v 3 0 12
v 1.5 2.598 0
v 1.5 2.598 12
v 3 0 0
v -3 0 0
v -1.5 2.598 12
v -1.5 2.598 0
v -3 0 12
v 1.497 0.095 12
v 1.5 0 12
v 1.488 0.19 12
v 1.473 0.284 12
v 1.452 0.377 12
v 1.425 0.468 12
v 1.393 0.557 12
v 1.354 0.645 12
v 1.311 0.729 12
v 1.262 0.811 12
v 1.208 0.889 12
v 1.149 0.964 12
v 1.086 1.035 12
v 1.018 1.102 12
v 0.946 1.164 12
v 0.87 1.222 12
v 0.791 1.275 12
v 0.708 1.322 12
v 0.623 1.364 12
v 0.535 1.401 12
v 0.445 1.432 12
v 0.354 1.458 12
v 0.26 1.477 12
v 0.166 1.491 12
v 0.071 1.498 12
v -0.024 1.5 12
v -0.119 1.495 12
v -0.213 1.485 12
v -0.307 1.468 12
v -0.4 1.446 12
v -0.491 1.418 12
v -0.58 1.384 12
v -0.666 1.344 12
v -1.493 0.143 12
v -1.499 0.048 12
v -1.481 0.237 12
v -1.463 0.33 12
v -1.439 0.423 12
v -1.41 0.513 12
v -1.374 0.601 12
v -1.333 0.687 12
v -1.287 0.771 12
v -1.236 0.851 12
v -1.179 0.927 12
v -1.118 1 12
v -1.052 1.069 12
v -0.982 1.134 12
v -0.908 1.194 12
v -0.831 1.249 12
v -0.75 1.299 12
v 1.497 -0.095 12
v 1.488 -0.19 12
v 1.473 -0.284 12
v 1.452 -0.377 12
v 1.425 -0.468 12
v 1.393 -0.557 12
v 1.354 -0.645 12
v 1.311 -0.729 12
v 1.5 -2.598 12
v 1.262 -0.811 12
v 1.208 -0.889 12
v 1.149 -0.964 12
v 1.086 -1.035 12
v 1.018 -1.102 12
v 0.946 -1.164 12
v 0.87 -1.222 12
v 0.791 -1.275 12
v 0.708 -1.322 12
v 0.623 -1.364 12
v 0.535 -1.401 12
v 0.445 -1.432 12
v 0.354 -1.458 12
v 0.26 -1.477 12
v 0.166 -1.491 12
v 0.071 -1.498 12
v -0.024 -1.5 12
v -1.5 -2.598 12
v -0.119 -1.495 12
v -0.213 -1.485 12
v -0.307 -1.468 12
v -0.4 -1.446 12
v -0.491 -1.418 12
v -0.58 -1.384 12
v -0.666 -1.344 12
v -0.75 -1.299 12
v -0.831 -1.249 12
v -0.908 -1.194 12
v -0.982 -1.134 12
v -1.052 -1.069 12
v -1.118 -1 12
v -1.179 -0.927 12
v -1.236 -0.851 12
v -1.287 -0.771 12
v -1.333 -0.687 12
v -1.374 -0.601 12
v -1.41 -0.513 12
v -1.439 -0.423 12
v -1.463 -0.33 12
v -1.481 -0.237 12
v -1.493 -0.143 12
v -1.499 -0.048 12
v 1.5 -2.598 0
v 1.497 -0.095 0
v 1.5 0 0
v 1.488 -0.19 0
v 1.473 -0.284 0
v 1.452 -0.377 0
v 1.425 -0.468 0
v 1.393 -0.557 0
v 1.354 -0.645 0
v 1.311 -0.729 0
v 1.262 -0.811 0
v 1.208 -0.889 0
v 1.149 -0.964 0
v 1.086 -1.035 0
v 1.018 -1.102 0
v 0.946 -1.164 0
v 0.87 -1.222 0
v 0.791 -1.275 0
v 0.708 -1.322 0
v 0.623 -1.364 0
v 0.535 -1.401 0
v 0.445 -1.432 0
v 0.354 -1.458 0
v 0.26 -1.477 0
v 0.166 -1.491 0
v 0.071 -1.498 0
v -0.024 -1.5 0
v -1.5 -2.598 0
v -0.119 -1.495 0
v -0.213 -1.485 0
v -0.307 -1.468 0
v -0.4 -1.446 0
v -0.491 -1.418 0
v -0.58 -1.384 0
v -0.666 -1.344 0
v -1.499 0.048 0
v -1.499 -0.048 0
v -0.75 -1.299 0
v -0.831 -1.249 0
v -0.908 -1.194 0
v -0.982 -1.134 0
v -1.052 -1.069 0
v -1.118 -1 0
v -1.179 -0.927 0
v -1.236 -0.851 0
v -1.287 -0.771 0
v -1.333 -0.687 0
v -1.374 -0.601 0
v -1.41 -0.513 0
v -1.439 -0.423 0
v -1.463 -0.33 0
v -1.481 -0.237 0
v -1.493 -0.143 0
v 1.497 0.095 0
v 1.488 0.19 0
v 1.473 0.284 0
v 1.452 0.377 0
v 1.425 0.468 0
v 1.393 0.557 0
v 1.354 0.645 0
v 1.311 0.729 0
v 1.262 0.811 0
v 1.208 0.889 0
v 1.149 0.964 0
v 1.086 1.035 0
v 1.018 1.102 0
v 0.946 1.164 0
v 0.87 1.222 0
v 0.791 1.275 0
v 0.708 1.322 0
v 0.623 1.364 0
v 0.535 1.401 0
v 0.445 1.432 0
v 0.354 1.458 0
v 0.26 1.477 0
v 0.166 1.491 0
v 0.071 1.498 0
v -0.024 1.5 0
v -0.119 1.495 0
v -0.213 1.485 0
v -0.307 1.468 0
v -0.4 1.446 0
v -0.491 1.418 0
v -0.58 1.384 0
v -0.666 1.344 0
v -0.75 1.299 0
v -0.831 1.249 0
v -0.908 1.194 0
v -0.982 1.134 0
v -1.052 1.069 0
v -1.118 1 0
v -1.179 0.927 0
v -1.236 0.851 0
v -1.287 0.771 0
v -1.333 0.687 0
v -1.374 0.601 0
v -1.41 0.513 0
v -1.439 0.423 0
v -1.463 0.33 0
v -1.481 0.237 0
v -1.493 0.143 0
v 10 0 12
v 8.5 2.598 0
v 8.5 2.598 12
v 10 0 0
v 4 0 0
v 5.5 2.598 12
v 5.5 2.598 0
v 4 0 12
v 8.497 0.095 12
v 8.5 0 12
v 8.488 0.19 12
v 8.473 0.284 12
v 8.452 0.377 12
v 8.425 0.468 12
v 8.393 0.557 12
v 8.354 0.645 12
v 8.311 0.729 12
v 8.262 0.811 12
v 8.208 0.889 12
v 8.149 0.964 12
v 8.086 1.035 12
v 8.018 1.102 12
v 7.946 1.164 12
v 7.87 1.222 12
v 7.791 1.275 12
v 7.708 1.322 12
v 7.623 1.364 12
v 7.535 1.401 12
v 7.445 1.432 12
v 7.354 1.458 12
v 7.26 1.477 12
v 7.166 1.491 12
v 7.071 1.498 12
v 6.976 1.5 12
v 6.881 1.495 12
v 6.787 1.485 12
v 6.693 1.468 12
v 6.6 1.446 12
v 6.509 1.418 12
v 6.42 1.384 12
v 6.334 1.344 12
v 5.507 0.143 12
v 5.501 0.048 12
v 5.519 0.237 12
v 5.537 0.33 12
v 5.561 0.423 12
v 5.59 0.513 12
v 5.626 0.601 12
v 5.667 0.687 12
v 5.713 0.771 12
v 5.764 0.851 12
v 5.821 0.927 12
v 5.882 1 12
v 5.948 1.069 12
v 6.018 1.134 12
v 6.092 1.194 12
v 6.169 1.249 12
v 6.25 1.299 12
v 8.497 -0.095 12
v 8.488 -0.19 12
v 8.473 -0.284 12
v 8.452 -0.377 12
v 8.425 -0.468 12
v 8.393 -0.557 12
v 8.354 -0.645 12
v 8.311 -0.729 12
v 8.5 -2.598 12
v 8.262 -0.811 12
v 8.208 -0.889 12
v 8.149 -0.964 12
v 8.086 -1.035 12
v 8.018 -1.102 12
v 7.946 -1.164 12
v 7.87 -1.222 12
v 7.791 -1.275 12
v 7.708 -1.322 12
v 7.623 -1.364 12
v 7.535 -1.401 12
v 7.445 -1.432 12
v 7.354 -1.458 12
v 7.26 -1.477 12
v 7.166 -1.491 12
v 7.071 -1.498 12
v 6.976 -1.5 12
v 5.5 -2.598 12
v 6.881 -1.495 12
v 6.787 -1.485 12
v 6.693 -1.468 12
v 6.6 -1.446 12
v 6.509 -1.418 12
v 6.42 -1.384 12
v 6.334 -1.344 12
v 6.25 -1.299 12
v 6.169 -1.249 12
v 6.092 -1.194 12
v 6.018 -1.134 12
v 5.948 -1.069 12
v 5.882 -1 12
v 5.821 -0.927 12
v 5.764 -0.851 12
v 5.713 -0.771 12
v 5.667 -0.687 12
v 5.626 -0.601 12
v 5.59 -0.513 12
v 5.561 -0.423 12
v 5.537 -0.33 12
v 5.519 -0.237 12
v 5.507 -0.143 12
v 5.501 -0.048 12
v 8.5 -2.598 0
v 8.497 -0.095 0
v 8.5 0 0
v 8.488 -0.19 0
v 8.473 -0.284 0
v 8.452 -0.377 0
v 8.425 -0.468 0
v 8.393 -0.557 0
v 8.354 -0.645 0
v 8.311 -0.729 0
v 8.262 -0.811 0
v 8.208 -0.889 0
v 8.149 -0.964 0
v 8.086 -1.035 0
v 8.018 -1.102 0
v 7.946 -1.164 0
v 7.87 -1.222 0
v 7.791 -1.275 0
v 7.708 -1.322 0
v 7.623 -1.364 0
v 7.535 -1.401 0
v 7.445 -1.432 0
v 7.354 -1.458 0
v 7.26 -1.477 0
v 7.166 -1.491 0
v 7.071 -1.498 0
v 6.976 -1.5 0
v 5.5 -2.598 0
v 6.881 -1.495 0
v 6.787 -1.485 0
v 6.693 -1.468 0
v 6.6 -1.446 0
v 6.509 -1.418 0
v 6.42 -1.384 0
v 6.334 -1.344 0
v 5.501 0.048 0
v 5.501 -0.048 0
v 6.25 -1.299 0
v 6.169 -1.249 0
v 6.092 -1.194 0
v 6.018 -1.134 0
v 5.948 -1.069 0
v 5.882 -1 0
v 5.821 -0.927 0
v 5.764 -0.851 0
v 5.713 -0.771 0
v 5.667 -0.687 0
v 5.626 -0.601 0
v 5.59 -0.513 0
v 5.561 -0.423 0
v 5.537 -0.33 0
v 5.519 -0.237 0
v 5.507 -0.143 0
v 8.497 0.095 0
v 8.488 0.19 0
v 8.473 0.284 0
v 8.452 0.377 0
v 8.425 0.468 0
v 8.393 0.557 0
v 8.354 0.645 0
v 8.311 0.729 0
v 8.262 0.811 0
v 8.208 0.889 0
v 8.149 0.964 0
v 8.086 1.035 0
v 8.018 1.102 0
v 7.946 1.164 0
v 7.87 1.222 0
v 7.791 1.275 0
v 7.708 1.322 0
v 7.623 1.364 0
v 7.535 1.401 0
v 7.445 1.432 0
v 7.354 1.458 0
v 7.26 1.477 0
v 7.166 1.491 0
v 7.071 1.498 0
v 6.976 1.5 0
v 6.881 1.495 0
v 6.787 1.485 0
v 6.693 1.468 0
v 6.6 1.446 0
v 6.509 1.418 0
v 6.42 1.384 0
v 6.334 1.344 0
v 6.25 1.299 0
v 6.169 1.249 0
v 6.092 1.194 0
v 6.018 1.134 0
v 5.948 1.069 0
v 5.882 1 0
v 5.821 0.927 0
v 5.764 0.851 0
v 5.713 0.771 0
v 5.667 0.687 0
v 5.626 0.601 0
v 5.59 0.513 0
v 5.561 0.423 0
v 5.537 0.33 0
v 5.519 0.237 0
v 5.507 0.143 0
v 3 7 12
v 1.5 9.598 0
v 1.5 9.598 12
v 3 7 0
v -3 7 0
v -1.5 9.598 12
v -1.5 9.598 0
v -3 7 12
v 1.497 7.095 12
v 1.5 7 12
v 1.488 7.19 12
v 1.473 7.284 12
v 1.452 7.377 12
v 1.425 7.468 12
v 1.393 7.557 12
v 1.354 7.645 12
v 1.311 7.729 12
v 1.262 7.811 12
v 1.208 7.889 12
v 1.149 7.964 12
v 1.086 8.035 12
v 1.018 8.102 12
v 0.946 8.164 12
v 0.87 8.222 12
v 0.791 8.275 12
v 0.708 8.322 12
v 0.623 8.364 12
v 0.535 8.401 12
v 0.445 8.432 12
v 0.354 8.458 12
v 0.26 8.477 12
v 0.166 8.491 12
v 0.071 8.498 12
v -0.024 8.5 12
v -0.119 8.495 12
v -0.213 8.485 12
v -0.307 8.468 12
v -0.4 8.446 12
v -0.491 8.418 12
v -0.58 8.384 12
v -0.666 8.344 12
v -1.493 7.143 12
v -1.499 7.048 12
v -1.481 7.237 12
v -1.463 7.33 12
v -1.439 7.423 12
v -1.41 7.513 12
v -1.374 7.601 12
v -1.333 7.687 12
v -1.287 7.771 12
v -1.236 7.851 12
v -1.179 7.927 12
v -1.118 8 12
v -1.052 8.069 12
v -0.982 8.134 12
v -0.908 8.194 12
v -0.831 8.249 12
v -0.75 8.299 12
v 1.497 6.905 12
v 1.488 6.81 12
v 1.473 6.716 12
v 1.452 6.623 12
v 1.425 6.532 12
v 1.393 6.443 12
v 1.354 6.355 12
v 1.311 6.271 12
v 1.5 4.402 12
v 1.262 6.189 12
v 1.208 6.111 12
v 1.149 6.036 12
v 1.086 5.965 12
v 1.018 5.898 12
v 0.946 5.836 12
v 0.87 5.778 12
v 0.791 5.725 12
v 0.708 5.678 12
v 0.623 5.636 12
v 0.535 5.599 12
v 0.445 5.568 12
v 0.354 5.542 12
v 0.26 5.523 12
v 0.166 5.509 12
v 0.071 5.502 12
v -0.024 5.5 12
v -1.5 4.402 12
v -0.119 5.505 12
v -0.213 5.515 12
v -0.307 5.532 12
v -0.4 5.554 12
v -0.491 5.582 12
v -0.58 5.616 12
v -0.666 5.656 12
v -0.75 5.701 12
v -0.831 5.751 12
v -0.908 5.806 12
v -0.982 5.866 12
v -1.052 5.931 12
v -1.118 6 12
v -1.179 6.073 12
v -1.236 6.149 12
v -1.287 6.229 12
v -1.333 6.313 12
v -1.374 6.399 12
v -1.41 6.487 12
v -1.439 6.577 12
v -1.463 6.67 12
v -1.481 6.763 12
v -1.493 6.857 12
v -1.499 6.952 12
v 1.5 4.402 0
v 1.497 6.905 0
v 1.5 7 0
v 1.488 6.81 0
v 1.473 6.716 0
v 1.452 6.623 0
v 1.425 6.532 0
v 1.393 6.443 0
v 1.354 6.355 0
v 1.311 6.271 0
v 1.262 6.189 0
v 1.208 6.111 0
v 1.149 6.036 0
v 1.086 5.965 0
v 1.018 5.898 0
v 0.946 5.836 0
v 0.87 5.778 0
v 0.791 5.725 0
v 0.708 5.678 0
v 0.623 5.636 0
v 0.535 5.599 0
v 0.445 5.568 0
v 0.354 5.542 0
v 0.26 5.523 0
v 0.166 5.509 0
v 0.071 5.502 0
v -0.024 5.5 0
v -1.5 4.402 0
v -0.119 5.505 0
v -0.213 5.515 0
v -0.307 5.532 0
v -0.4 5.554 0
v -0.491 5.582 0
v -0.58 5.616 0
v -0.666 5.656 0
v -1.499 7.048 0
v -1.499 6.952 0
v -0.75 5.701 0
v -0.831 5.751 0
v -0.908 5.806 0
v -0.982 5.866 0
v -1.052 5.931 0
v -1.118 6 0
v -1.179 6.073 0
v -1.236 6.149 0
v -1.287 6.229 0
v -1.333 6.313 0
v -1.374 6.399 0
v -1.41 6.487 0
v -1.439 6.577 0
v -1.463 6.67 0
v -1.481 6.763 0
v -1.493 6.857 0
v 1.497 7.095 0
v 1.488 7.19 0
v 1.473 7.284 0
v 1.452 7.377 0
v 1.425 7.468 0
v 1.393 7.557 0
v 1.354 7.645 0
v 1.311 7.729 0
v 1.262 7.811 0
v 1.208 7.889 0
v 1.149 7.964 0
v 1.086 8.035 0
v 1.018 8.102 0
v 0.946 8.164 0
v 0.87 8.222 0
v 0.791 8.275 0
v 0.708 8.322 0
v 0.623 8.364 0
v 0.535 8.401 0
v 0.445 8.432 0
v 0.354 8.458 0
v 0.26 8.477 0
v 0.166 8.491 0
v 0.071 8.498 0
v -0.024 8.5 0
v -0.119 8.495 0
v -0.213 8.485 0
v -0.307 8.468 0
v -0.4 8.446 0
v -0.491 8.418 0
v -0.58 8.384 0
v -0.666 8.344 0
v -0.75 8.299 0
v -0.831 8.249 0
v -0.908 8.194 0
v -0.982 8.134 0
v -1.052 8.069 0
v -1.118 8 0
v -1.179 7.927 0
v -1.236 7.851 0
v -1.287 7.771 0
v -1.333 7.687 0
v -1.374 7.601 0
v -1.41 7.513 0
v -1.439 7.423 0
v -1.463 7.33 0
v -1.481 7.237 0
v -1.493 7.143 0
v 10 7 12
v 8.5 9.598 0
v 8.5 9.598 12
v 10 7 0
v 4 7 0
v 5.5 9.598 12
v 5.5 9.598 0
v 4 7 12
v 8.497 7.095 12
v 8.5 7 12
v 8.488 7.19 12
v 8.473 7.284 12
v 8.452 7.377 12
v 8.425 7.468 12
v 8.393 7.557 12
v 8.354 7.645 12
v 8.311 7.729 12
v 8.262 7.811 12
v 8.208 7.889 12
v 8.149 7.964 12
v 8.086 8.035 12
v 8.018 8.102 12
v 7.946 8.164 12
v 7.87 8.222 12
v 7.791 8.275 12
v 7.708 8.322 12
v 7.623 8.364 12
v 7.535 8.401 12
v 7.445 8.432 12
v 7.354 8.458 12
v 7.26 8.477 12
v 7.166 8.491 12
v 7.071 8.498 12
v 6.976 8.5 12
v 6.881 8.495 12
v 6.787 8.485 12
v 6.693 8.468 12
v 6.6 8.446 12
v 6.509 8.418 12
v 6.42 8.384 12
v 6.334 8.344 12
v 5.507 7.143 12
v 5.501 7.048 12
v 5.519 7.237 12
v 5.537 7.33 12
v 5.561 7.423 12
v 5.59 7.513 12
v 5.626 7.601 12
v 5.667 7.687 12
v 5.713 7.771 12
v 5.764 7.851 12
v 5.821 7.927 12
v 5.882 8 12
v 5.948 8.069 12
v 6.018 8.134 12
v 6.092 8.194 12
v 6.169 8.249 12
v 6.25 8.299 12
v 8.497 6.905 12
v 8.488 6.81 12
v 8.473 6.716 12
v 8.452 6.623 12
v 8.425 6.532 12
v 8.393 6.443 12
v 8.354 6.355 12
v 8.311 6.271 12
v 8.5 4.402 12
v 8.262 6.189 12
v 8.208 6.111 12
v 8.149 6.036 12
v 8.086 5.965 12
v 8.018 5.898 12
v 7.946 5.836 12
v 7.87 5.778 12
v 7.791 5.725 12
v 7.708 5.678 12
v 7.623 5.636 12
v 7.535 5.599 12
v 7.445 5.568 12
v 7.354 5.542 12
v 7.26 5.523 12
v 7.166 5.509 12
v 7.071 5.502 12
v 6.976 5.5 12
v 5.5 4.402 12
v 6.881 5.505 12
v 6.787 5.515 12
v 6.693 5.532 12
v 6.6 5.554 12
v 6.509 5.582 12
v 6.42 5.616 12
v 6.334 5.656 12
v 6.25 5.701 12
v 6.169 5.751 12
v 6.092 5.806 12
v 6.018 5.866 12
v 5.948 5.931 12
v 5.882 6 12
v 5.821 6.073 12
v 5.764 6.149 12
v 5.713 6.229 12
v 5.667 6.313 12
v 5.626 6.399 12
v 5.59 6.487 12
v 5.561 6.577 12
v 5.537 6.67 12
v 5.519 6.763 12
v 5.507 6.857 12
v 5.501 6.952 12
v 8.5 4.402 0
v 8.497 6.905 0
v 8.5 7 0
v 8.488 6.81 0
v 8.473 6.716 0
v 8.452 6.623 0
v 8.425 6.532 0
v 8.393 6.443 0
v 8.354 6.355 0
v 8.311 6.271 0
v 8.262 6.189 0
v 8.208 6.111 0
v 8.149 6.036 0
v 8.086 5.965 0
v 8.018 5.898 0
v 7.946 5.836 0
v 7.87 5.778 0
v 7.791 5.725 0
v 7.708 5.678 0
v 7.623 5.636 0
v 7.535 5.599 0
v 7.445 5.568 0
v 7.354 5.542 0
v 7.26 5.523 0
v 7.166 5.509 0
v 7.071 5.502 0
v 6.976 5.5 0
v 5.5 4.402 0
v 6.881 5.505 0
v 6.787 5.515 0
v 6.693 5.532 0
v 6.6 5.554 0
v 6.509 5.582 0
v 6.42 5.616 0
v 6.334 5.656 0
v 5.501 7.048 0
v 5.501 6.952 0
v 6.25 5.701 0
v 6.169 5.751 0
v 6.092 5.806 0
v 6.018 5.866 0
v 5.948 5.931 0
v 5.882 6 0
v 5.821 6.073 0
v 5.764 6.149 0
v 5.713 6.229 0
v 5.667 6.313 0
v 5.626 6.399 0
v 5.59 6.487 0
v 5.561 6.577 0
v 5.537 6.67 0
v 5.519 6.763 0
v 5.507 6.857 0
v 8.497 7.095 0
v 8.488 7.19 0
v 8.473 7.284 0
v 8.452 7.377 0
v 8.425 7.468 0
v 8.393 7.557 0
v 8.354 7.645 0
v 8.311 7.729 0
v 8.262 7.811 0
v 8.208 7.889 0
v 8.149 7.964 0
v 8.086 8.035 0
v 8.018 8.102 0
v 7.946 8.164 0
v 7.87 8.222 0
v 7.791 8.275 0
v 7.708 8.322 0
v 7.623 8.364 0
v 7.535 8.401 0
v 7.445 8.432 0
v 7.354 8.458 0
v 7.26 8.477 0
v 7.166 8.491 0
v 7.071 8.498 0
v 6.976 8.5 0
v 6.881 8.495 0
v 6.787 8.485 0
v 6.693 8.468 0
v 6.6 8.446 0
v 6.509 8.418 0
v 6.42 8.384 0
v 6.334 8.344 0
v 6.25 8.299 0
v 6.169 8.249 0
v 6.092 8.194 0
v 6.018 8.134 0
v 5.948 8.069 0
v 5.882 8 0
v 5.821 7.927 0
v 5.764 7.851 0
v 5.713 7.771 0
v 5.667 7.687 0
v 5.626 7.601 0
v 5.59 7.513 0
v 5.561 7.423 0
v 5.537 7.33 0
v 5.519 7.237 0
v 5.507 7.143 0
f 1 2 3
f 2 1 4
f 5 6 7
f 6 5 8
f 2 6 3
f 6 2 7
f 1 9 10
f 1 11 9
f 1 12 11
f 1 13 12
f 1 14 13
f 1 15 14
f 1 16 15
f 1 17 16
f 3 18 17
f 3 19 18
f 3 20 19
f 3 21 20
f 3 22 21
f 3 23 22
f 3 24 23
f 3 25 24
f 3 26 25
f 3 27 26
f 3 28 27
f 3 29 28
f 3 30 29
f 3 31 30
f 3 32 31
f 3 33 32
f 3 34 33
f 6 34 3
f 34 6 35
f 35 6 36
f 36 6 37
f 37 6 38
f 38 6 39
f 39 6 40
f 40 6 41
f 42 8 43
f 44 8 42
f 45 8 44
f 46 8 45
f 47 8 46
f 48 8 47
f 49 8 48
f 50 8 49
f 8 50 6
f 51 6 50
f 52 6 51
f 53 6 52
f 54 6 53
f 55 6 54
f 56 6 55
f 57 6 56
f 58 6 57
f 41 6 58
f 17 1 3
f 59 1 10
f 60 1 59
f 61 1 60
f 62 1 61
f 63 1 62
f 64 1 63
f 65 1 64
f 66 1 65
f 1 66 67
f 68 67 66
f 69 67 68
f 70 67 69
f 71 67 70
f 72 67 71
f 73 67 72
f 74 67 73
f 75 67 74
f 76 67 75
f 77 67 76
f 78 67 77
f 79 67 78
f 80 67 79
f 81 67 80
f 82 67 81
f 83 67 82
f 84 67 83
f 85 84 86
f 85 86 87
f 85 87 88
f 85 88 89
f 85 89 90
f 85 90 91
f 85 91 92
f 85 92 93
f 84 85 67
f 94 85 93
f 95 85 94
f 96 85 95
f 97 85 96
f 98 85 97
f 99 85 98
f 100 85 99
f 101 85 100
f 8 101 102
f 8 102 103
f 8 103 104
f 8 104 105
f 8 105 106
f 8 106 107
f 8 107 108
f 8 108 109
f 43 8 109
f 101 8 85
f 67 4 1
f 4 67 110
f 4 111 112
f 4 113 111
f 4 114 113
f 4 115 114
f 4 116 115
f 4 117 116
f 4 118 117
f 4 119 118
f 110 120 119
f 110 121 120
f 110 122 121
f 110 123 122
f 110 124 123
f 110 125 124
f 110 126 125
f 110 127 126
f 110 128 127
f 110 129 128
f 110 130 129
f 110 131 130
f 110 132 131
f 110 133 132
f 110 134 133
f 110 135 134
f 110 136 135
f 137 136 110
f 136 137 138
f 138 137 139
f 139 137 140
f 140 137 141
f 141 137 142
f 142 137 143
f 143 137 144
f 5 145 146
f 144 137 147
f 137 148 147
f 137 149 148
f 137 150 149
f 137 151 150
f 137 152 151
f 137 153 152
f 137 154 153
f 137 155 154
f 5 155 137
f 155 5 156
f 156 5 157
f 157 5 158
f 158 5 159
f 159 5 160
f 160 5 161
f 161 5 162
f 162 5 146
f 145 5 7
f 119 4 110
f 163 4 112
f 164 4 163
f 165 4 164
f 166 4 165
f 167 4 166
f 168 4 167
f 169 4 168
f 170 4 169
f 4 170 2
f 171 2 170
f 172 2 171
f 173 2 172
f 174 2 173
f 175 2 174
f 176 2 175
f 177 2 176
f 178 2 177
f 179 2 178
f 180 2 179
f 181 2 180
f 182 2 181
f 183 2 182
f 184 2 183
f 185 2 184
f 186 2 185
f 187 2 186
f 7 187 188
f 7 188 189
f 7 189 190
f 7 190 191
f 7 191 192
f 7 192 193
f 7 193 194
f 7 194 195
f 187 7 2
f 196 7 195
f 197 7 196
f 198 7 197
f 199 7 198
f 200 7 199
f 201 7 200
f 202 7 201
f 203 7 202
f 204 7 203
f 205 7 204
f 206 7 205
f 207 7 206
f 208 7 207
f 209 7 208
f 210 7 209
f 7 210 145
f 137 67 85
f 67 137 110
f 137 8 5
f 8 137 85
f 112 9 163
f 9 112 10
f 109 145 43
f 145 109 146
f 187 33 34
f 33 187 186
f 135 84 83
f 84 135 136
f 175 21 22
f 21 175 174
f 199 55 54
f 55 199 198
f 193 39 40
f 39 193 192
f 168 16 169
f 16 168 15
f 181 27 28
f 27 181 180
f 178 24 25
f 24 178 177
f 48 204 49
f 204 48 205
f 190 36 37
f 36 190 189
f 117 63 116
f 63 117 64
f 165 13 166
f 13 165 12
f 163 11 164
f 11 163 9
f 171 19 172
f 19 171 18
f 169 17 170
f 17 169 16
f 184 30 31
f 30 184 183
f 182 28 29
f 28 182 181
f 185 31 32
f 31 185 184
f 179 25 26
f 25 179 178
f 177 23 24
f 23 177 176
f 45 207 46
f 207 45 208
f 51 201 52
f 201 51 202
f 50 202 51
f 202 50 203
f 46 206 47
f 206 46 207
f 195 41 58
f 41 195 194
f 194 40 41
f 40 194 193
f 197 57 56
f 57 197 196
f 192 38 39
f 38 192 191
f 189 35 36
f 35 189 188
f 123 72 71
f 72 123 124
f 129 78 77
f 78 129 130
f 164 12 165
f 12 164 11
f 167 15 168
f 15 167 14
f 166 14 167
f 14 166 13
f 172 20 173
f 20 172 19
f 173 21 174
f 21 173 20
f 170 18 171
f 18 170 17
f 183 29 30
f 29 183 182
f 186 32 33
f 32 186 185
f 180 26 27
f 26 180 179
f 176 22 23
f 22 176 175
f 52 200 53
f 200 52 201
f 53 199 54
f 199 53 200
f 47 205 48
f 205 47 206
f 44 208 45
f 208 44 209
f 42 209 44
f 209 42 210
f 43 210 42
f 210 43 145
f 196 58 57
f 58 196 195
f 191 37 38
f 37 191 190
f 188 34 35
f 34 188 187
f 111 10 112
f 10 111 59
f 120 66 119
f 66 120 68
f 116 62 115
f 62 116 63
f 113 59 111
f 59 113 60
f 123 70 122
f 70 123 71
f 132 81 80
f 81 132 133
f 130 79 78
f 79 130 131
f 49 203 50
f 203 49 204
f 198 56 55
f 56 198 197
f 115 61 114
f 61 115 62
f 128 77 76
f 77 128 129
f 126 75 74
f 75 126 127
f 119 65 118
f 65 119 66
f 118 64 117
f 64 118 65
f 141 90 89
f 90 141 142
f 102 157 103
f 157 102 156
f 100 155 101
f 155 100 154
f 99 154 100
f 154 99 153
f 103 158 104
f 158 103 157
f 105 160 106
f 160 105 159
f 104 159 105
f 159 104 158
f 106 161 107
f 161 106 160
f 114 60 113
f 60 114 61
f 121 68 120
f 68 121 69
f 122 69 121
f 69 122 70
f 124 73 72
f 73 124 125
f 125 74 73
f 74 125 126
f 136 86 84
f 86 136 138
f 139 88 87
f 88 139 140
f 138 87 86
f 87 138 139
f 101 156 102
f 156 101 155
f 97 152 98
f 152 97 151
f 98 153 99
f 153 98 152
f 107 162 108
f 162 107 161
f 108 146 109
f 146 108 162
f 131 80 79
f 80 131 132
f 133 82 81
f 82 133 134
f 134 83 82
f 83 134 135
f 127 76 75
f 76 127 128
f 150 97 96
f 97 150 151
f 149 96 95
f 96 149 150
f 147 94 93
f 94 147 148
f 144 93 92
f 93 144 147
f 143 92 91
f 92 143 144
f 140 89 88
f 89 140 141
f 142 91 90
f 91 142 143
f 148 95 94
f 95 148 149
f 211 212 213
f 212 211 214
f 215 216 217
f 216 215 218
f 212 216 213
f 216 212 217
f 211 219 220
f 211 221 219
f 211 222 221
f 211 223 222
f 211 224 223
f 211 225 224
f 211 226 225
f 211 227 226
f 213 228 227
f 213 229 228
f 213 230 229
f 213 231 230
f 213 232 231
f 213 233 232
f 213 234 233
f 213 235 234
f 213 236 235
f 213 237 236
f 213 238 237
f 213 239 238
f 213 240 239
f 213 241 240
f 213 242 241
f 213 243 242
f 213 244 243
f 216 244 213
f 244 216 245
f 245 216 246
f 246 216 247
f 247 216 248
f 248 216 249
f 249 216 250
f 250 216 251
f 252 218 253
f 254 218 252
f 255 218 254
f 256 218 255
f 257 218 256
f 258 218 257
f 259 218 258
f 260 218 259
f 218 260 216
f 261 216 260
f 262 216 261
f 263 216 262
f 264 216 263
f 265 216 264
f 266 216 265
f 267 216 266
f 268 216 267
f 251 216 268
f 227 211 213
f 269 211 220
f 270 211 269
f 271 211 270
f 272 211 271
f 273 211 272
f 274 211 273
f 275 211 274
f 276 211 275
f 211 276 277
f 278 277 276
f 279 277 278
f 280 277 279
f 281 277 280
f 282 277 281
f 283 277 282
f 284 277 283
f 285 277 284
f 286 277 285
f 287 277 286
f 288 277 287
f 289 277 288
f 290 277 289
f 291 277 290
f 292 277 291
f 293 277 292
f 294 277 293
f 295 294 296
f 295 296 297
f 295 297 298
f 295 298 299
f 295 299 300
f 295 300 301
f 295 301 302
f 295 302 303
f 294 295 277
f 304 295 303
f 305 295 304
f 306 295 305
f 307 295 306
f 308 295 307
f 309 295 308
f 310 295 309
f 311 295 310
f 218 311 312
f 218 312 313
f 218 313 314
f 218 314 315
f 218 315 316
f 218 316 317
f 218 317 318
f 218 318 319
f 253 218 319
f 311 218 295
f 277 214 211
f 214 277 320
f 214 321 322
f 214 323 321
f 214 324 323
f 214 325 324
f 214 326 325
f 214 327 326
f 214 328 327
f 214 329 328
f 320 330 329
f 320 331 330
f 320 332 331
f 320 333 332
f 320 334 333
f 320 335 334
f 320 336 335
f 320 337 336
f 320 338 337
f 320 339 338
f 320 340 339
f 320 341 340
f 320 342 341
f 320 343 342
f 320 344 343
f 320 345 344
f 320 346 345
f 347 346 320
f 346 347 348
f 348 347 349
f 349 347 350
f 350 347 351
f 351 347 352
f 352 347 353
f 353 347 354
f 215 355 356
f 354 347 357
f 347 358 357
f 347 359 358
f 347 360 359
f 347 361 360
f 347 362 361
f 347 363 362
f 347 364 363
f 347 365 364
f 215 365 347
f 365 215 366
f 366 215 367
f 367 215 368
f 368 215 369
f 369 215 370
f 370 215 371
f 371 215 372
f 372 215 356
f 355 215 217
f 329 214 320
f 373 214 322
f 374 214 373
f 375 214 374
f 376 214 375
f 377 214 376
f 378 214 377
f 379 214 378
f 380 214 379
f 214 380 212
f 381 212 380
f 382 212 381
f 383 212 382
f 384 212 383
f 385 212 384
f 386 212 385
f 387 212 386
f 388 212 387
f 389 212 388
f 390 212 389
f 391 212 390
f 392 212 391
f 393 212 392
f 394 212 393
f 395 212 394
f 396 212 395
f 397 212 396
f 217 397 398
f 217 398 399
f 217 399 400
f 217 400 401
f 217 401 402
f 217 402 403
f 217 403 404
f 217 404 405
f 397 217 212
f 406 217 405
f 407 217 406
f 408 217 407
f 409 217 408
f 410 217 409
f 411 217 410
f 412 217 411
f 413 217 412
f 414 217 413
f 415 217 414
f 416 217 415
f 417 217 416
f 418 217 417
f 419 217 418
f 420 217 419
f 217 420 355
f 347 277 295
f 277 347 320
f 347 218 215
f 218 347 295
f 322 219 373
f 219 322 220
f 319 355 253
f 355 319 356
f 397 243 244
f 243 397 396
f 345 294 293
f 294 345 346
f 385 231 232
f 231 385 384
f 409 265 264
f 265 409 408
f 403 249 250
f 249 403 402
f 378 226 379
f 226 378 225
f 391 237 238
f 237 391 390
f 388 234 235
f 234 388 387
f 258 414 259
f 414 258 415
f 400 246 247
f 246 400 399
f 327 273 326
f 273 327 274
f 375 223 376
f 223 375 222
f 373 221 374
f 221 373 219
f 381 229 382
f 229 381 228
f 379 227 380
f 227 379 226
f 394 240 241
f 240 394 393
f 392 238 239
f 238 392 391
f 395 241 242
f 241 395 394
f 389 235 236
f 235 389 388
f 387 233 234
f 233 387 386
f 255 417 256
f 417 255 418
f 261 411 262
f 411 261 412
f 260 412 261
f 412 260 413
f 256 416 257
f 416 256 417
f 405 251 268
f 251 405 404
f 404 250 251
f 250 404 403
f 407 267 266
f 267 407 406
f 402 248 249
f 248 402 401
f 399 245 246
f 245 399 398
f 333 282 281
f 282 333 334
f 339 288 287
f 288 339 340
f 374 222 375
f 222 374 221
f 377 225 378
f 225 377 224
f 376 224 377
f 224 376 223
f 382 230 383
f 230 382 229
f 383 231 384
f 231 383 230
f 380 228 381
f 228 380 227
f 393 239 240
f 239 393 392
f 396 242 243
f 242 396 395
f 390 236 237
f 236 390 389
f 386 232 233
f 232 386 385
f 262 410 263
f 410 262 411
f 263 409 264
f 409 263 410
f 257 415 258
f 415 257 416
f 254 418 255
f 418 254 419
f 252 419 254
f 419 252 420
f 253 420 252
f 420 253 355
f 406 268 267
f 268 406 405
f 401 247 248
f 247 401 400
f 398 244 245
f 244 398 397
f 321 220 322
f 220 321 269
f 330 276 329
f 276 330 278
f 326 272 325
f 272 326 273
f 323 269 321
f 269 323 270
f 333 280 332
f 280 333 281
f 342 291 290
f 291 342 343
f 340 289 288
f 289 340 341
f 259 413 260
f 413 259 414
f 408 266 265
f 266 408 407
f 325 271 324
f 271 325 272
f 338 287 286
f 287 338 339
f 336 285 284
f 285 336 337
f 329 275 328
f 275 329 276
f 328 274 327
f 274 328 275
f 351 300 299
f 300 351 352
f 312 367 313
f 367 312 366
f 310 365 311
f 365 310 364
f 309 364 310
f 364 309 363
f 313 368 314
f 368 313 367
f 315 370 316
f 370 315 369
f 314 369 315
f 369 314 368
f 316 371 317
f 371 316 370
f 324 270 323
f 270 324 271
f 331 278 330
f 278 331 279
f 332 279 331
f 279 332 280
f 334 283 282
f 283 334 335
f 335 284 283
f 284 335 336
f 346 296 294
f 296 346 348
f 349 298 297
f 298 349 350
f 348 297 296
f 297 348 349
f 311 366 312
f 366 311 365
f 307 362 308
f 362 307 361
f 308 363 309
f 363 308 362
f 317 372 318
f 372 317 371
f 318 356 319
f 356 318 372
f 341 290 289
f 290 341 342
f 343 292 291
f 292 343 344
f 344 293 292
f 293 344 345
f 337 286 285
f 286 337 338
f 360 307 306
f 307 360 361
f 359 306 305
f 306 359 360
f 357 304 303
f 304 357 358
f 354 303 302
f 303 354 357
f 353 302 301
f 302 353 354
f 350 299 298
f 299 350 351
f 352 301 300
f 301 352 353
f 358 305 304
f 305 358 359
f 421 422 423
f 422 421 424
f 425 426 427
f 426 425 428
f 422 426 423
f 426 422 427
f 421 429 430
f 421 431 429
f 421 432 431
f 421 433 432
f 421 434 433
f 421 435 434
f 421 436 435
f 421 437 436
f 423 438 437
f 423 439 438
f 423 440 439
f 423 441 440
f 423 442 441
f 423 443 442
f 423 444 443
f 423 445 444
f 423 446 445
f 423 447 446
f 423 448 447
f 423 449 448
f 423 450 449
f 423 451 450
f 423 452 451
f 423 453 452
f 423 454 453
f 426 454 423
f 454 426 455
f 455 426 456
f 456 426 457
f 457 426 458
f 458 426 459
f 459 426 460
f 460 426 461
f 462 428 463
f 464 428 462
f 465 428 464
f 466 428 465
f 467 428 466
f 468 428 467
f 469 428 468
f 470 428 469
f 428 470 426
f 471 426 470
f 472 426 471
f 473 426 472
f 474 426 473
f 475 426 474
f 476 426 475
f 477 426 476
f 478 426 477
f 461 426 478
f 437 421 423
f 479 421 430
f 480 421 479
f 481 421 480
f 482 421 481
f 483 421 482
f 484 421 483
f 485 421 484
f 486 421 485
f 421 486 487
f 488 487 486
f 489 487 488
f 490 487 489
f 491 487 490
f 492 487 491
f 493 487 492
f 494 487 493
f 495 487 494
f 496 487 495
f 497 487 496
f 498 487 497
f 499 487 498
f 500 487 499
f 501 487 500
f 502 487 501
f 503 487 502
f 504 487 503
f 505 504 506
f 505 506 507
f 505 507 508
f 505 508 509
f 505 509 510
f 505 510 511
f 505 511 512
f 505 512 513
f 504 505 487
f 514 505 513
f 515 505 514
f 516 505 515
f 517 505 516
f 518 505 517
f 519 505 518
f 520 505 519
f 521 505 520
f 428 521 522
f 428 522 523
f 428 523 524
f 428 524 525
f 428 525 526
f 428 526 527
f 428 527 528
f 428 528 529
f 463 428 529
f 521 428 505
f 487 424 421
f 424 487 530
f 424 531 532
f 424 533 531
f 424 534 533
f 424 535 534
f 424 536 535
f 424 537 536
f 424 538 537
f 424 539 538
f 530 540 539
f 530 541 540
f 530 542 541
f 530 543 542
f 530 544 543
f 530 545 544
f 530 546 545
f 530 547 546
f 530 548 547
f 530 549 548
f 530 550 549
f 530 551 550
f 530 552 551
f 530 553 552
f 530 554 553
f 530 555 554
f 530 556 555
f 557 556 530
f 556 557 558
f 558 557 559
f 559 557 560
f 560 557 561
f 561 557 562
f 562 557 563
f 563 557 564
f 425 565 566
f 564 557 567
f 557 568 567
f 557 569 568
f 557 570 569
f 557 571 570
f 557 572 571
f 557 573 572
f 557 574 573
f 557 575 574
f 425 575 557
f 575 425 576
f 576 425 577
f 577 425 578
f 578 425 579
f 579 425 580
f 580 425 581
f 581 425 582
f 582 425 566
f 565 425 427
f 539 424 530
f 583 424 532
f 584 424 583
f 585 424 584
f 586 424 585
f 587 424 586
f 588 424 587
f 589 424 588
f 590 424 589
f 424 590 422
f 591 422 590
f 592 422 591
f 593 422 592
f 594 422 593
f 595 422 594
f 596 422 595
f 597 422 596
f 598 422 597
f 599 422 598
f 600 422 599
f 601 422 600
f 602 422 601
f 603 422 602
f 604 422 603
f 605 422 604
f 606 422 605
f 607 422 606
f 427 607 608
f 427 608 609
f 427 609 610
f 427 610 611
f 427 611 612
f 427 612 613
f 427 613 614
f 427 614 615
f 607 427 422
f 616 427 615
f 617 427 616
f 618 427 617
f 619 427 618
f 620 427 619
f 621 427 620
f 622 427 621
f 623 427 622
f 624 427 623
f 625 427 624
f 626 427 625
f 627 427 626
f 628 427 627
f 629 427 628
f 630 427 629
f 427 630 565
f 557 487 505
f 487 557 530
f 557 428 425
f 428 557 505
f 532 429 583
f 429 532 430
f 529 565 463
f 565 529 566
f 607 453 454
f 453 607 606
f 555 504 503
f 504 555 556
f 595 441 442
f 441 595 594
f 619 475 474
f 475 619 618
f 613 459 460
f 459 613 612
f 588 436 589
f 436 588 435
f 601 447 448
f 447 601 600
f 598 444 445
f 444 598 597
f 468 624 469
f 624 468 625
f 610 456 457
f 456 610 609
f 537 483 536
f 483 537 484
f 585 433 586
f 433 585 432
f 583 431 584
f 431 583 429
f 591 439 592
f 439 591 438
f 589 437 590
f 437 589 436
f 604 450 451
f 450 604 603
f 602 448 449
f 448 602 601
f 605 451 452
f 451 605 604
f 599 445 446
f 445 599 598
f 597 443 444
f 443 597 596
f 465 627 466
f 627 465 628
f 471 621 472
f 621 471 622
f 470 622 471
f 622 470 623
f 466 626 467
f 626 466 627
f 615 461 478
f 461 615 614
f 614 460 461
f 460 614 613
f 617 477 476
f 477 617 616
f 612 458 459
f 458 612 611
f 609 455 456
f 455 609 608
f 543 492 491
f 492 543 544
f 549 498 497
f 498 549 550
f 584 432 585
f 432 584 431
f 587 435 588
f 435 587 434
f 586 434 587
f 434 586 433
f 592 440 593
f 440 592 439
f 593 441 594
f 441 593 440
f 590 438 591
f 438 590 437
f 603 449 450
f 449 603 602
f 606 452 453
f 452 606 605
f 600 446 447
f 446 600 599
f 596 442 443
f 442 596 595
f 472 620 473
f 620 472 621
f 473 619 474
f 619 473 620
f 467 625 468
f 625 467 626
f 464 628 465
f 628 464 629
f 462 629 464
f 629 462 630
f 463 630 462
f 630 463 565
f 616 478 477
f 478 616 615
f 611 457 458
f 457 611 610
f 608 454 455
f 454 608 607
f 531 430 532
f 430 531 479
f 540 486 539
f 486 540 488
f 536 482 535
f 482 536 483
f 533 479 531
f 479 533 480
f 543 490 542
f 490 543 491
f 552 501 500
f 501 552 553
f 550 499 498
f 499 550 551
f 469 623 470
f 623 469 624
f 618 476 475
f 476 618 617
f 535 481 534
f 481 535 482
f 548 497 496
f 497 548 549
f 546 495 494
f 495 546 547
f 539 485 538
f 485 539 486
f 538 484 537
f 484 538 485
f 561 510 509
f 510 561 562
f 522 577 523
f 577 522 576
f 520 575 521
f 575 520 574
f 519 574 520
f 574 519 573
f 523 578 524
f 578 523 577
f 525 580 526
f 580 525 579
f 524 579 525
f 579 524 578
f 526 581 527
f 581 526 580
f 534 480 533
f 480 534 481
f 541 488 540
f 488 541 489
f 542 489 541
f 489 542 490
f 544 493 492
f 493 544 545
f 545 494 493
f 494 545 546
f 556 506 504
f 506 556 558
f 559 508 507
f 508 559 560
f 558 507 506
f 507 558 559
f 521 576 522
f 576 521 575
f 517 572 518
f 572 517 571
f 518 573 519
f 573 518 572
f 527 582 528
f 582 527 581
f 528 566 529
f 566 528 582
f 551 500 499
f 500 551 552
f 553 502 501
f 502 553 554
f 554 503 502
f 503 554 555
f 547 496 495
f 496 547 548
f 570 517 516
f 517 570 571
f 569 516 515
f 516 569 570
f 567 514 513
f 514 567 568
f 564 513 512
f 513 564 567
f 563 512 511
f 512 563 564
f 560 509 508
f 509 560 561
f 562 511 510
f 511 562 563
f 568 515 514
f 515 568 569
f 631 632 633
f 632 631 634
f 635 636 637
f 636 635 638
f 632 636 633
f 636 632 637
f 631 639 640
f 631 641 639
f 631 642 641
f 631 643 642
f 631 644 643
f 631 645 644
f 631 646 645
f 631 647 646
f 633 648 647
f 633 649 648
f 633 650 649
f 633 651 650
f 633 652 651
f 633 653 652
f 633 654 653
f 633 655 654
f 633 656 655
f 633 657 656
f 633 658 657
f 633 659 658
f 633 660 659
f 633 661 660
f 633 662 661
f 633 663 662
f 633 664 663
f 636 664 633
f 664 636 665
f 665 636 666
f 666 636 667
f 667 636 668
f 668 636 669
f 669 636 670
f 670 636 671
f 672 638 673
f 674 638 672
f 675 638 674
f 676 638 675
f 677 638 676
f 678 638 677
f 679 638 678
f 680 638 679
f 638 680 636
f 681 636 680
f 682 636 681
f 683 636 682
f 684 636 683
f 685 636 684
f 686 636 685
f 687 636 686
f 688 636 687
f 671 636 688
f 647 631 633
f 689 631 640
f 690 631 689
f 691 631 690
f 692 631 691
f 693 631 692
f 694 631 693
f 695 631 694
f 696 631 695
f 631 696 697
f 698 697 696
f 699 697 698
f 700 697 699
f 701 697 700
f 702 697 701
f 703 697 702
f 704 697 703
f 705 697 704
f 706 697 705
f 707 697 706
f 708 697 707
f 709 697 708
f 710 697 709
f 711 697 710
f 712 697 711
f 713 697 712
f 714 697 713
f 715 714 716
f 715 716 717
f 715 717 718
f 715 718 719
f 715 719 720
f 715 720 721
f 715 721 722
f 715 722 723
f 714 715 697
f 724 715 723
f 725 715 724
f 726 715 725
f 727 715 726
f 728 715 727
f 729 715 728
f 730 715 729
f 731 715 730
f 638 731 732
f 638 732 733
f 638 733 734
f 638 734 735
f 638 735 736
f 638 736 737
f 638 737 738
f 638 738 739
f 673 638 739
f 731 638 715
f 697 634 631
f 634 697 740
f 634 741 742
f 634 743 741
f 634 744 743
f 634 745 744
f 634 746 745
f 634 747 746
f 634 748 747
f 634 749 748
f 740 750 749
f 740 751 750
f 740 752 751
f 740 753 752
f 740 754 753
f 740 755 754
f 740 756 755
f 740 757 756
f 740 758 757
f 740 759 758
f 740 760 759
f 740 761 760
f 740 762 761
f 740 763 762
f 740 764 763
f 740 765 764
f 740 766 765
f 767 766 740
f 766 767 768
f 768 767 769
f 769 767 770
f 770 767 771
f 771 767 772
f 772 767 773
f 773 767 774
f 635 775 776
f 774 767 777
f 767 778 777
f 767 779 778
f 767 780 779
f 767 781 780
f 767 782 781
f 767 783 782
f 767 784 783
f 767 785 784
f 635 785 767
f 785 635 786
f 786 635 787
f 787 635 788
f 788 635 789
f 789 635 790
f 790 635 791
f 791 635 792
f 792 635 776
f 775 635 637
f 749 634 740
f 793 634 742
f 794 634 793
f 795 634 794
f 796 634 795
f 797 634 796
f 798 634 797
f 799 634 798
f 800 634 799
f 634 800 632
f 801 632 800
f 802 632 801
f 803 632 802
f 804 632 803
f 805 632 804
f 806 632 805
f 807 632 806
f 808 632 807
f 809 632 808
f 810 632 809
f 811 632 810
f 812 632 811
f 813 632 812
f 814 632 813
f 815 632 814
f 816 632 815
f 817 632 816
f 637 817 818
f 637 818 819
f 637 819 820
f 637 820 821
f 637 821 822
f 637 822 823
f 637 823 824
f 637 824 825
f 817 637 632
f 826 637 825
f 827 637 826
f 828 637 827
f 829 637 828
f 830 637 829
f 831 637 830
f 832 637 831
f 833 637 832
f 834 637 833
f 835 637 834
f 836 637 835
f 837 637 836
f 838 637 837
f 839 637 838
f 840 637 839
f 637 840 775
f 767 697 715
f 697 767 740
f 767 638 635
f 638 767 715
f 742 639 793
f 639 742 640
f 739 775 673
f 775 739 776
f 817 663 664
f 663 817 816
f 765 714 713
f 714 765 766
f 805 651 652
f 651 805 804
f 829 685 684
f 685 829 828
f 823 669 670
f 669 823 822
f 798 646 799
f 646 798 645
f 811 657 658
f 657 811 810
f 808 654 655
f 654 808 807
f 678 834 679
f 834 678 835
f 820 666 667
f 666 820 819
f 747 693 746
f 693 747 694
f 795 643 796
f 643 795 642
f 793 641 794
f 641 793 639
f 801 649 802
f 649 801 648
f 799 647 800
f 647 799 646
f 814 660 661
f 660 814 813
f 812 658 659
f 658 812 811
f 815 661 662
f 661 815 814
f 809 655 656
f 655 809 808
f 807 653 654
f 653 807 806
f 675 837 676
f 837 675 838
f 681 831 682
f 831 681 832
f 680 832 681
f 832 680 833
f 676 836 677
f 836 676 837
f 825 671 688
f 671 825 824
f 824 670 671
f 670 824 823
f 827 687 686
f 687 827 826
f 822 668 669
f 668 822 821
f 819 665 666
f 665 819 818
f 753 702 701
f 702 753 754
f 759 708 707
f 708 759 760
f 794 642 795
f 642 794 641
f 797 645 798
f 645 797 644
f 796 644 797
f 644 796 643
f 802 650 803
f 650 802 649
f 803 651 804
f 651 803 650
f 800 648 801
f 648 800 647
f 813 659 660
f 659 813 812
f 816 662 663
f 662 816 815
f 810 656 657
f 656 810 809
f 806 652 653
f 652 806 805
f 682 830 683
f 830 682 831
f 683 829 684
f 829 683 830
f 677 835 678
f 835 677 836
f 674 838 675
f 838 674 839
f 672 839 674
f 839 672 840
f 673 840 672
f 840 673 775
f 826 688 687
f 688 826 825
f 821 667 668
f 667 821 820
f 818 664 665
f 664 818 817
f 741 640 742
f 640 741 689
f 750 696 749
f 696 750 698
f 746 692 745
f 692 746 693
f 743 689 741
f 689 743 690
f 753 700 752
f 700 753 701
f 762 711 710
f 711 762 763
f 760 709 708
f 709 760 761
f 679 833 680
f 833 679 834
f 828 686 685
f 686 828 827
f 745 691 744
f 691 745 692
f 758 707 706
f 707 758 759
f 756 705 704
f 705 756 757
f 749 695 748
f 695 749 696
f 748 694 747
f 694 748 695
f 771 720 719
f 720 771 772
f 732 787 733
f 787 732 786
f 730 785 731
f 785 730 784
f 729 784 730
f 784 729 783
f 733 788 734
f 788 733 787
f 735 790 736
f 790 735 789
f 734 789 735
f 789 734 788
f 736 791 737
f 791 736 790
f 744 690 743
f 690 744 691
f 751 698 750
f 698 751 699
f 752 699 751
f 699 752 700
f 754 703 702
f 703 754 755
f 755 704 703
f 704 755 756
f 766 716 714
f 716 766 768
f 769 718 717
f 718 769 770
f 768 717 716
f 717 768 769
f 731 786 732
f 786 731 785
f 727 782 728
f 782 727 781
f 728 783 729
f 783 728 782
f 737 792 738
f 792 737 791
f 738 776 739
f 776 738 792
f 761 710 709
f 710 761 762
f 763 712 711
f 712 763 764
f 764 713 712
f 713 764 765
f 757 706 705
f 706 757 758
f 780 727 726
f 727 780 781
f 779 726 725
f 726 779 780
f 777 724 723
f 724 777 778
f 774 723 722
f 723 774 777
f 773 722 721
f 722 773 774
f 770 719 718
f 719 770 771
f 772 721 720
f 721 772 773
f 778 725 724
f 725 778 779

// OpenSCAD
diameter = 6;
length = 12;
screwd = 3;

for (x= [0:diameter+1:diameter+1],y=[0:diameter+1:diameter+1]){
    translate([x,y,0])difference(){
        cylinder(d=diameter,$fn = 6,h=length);
        translate([0,0,-1])cylinder(d=screwd,h=length+2,$fn=99);
    }
}
